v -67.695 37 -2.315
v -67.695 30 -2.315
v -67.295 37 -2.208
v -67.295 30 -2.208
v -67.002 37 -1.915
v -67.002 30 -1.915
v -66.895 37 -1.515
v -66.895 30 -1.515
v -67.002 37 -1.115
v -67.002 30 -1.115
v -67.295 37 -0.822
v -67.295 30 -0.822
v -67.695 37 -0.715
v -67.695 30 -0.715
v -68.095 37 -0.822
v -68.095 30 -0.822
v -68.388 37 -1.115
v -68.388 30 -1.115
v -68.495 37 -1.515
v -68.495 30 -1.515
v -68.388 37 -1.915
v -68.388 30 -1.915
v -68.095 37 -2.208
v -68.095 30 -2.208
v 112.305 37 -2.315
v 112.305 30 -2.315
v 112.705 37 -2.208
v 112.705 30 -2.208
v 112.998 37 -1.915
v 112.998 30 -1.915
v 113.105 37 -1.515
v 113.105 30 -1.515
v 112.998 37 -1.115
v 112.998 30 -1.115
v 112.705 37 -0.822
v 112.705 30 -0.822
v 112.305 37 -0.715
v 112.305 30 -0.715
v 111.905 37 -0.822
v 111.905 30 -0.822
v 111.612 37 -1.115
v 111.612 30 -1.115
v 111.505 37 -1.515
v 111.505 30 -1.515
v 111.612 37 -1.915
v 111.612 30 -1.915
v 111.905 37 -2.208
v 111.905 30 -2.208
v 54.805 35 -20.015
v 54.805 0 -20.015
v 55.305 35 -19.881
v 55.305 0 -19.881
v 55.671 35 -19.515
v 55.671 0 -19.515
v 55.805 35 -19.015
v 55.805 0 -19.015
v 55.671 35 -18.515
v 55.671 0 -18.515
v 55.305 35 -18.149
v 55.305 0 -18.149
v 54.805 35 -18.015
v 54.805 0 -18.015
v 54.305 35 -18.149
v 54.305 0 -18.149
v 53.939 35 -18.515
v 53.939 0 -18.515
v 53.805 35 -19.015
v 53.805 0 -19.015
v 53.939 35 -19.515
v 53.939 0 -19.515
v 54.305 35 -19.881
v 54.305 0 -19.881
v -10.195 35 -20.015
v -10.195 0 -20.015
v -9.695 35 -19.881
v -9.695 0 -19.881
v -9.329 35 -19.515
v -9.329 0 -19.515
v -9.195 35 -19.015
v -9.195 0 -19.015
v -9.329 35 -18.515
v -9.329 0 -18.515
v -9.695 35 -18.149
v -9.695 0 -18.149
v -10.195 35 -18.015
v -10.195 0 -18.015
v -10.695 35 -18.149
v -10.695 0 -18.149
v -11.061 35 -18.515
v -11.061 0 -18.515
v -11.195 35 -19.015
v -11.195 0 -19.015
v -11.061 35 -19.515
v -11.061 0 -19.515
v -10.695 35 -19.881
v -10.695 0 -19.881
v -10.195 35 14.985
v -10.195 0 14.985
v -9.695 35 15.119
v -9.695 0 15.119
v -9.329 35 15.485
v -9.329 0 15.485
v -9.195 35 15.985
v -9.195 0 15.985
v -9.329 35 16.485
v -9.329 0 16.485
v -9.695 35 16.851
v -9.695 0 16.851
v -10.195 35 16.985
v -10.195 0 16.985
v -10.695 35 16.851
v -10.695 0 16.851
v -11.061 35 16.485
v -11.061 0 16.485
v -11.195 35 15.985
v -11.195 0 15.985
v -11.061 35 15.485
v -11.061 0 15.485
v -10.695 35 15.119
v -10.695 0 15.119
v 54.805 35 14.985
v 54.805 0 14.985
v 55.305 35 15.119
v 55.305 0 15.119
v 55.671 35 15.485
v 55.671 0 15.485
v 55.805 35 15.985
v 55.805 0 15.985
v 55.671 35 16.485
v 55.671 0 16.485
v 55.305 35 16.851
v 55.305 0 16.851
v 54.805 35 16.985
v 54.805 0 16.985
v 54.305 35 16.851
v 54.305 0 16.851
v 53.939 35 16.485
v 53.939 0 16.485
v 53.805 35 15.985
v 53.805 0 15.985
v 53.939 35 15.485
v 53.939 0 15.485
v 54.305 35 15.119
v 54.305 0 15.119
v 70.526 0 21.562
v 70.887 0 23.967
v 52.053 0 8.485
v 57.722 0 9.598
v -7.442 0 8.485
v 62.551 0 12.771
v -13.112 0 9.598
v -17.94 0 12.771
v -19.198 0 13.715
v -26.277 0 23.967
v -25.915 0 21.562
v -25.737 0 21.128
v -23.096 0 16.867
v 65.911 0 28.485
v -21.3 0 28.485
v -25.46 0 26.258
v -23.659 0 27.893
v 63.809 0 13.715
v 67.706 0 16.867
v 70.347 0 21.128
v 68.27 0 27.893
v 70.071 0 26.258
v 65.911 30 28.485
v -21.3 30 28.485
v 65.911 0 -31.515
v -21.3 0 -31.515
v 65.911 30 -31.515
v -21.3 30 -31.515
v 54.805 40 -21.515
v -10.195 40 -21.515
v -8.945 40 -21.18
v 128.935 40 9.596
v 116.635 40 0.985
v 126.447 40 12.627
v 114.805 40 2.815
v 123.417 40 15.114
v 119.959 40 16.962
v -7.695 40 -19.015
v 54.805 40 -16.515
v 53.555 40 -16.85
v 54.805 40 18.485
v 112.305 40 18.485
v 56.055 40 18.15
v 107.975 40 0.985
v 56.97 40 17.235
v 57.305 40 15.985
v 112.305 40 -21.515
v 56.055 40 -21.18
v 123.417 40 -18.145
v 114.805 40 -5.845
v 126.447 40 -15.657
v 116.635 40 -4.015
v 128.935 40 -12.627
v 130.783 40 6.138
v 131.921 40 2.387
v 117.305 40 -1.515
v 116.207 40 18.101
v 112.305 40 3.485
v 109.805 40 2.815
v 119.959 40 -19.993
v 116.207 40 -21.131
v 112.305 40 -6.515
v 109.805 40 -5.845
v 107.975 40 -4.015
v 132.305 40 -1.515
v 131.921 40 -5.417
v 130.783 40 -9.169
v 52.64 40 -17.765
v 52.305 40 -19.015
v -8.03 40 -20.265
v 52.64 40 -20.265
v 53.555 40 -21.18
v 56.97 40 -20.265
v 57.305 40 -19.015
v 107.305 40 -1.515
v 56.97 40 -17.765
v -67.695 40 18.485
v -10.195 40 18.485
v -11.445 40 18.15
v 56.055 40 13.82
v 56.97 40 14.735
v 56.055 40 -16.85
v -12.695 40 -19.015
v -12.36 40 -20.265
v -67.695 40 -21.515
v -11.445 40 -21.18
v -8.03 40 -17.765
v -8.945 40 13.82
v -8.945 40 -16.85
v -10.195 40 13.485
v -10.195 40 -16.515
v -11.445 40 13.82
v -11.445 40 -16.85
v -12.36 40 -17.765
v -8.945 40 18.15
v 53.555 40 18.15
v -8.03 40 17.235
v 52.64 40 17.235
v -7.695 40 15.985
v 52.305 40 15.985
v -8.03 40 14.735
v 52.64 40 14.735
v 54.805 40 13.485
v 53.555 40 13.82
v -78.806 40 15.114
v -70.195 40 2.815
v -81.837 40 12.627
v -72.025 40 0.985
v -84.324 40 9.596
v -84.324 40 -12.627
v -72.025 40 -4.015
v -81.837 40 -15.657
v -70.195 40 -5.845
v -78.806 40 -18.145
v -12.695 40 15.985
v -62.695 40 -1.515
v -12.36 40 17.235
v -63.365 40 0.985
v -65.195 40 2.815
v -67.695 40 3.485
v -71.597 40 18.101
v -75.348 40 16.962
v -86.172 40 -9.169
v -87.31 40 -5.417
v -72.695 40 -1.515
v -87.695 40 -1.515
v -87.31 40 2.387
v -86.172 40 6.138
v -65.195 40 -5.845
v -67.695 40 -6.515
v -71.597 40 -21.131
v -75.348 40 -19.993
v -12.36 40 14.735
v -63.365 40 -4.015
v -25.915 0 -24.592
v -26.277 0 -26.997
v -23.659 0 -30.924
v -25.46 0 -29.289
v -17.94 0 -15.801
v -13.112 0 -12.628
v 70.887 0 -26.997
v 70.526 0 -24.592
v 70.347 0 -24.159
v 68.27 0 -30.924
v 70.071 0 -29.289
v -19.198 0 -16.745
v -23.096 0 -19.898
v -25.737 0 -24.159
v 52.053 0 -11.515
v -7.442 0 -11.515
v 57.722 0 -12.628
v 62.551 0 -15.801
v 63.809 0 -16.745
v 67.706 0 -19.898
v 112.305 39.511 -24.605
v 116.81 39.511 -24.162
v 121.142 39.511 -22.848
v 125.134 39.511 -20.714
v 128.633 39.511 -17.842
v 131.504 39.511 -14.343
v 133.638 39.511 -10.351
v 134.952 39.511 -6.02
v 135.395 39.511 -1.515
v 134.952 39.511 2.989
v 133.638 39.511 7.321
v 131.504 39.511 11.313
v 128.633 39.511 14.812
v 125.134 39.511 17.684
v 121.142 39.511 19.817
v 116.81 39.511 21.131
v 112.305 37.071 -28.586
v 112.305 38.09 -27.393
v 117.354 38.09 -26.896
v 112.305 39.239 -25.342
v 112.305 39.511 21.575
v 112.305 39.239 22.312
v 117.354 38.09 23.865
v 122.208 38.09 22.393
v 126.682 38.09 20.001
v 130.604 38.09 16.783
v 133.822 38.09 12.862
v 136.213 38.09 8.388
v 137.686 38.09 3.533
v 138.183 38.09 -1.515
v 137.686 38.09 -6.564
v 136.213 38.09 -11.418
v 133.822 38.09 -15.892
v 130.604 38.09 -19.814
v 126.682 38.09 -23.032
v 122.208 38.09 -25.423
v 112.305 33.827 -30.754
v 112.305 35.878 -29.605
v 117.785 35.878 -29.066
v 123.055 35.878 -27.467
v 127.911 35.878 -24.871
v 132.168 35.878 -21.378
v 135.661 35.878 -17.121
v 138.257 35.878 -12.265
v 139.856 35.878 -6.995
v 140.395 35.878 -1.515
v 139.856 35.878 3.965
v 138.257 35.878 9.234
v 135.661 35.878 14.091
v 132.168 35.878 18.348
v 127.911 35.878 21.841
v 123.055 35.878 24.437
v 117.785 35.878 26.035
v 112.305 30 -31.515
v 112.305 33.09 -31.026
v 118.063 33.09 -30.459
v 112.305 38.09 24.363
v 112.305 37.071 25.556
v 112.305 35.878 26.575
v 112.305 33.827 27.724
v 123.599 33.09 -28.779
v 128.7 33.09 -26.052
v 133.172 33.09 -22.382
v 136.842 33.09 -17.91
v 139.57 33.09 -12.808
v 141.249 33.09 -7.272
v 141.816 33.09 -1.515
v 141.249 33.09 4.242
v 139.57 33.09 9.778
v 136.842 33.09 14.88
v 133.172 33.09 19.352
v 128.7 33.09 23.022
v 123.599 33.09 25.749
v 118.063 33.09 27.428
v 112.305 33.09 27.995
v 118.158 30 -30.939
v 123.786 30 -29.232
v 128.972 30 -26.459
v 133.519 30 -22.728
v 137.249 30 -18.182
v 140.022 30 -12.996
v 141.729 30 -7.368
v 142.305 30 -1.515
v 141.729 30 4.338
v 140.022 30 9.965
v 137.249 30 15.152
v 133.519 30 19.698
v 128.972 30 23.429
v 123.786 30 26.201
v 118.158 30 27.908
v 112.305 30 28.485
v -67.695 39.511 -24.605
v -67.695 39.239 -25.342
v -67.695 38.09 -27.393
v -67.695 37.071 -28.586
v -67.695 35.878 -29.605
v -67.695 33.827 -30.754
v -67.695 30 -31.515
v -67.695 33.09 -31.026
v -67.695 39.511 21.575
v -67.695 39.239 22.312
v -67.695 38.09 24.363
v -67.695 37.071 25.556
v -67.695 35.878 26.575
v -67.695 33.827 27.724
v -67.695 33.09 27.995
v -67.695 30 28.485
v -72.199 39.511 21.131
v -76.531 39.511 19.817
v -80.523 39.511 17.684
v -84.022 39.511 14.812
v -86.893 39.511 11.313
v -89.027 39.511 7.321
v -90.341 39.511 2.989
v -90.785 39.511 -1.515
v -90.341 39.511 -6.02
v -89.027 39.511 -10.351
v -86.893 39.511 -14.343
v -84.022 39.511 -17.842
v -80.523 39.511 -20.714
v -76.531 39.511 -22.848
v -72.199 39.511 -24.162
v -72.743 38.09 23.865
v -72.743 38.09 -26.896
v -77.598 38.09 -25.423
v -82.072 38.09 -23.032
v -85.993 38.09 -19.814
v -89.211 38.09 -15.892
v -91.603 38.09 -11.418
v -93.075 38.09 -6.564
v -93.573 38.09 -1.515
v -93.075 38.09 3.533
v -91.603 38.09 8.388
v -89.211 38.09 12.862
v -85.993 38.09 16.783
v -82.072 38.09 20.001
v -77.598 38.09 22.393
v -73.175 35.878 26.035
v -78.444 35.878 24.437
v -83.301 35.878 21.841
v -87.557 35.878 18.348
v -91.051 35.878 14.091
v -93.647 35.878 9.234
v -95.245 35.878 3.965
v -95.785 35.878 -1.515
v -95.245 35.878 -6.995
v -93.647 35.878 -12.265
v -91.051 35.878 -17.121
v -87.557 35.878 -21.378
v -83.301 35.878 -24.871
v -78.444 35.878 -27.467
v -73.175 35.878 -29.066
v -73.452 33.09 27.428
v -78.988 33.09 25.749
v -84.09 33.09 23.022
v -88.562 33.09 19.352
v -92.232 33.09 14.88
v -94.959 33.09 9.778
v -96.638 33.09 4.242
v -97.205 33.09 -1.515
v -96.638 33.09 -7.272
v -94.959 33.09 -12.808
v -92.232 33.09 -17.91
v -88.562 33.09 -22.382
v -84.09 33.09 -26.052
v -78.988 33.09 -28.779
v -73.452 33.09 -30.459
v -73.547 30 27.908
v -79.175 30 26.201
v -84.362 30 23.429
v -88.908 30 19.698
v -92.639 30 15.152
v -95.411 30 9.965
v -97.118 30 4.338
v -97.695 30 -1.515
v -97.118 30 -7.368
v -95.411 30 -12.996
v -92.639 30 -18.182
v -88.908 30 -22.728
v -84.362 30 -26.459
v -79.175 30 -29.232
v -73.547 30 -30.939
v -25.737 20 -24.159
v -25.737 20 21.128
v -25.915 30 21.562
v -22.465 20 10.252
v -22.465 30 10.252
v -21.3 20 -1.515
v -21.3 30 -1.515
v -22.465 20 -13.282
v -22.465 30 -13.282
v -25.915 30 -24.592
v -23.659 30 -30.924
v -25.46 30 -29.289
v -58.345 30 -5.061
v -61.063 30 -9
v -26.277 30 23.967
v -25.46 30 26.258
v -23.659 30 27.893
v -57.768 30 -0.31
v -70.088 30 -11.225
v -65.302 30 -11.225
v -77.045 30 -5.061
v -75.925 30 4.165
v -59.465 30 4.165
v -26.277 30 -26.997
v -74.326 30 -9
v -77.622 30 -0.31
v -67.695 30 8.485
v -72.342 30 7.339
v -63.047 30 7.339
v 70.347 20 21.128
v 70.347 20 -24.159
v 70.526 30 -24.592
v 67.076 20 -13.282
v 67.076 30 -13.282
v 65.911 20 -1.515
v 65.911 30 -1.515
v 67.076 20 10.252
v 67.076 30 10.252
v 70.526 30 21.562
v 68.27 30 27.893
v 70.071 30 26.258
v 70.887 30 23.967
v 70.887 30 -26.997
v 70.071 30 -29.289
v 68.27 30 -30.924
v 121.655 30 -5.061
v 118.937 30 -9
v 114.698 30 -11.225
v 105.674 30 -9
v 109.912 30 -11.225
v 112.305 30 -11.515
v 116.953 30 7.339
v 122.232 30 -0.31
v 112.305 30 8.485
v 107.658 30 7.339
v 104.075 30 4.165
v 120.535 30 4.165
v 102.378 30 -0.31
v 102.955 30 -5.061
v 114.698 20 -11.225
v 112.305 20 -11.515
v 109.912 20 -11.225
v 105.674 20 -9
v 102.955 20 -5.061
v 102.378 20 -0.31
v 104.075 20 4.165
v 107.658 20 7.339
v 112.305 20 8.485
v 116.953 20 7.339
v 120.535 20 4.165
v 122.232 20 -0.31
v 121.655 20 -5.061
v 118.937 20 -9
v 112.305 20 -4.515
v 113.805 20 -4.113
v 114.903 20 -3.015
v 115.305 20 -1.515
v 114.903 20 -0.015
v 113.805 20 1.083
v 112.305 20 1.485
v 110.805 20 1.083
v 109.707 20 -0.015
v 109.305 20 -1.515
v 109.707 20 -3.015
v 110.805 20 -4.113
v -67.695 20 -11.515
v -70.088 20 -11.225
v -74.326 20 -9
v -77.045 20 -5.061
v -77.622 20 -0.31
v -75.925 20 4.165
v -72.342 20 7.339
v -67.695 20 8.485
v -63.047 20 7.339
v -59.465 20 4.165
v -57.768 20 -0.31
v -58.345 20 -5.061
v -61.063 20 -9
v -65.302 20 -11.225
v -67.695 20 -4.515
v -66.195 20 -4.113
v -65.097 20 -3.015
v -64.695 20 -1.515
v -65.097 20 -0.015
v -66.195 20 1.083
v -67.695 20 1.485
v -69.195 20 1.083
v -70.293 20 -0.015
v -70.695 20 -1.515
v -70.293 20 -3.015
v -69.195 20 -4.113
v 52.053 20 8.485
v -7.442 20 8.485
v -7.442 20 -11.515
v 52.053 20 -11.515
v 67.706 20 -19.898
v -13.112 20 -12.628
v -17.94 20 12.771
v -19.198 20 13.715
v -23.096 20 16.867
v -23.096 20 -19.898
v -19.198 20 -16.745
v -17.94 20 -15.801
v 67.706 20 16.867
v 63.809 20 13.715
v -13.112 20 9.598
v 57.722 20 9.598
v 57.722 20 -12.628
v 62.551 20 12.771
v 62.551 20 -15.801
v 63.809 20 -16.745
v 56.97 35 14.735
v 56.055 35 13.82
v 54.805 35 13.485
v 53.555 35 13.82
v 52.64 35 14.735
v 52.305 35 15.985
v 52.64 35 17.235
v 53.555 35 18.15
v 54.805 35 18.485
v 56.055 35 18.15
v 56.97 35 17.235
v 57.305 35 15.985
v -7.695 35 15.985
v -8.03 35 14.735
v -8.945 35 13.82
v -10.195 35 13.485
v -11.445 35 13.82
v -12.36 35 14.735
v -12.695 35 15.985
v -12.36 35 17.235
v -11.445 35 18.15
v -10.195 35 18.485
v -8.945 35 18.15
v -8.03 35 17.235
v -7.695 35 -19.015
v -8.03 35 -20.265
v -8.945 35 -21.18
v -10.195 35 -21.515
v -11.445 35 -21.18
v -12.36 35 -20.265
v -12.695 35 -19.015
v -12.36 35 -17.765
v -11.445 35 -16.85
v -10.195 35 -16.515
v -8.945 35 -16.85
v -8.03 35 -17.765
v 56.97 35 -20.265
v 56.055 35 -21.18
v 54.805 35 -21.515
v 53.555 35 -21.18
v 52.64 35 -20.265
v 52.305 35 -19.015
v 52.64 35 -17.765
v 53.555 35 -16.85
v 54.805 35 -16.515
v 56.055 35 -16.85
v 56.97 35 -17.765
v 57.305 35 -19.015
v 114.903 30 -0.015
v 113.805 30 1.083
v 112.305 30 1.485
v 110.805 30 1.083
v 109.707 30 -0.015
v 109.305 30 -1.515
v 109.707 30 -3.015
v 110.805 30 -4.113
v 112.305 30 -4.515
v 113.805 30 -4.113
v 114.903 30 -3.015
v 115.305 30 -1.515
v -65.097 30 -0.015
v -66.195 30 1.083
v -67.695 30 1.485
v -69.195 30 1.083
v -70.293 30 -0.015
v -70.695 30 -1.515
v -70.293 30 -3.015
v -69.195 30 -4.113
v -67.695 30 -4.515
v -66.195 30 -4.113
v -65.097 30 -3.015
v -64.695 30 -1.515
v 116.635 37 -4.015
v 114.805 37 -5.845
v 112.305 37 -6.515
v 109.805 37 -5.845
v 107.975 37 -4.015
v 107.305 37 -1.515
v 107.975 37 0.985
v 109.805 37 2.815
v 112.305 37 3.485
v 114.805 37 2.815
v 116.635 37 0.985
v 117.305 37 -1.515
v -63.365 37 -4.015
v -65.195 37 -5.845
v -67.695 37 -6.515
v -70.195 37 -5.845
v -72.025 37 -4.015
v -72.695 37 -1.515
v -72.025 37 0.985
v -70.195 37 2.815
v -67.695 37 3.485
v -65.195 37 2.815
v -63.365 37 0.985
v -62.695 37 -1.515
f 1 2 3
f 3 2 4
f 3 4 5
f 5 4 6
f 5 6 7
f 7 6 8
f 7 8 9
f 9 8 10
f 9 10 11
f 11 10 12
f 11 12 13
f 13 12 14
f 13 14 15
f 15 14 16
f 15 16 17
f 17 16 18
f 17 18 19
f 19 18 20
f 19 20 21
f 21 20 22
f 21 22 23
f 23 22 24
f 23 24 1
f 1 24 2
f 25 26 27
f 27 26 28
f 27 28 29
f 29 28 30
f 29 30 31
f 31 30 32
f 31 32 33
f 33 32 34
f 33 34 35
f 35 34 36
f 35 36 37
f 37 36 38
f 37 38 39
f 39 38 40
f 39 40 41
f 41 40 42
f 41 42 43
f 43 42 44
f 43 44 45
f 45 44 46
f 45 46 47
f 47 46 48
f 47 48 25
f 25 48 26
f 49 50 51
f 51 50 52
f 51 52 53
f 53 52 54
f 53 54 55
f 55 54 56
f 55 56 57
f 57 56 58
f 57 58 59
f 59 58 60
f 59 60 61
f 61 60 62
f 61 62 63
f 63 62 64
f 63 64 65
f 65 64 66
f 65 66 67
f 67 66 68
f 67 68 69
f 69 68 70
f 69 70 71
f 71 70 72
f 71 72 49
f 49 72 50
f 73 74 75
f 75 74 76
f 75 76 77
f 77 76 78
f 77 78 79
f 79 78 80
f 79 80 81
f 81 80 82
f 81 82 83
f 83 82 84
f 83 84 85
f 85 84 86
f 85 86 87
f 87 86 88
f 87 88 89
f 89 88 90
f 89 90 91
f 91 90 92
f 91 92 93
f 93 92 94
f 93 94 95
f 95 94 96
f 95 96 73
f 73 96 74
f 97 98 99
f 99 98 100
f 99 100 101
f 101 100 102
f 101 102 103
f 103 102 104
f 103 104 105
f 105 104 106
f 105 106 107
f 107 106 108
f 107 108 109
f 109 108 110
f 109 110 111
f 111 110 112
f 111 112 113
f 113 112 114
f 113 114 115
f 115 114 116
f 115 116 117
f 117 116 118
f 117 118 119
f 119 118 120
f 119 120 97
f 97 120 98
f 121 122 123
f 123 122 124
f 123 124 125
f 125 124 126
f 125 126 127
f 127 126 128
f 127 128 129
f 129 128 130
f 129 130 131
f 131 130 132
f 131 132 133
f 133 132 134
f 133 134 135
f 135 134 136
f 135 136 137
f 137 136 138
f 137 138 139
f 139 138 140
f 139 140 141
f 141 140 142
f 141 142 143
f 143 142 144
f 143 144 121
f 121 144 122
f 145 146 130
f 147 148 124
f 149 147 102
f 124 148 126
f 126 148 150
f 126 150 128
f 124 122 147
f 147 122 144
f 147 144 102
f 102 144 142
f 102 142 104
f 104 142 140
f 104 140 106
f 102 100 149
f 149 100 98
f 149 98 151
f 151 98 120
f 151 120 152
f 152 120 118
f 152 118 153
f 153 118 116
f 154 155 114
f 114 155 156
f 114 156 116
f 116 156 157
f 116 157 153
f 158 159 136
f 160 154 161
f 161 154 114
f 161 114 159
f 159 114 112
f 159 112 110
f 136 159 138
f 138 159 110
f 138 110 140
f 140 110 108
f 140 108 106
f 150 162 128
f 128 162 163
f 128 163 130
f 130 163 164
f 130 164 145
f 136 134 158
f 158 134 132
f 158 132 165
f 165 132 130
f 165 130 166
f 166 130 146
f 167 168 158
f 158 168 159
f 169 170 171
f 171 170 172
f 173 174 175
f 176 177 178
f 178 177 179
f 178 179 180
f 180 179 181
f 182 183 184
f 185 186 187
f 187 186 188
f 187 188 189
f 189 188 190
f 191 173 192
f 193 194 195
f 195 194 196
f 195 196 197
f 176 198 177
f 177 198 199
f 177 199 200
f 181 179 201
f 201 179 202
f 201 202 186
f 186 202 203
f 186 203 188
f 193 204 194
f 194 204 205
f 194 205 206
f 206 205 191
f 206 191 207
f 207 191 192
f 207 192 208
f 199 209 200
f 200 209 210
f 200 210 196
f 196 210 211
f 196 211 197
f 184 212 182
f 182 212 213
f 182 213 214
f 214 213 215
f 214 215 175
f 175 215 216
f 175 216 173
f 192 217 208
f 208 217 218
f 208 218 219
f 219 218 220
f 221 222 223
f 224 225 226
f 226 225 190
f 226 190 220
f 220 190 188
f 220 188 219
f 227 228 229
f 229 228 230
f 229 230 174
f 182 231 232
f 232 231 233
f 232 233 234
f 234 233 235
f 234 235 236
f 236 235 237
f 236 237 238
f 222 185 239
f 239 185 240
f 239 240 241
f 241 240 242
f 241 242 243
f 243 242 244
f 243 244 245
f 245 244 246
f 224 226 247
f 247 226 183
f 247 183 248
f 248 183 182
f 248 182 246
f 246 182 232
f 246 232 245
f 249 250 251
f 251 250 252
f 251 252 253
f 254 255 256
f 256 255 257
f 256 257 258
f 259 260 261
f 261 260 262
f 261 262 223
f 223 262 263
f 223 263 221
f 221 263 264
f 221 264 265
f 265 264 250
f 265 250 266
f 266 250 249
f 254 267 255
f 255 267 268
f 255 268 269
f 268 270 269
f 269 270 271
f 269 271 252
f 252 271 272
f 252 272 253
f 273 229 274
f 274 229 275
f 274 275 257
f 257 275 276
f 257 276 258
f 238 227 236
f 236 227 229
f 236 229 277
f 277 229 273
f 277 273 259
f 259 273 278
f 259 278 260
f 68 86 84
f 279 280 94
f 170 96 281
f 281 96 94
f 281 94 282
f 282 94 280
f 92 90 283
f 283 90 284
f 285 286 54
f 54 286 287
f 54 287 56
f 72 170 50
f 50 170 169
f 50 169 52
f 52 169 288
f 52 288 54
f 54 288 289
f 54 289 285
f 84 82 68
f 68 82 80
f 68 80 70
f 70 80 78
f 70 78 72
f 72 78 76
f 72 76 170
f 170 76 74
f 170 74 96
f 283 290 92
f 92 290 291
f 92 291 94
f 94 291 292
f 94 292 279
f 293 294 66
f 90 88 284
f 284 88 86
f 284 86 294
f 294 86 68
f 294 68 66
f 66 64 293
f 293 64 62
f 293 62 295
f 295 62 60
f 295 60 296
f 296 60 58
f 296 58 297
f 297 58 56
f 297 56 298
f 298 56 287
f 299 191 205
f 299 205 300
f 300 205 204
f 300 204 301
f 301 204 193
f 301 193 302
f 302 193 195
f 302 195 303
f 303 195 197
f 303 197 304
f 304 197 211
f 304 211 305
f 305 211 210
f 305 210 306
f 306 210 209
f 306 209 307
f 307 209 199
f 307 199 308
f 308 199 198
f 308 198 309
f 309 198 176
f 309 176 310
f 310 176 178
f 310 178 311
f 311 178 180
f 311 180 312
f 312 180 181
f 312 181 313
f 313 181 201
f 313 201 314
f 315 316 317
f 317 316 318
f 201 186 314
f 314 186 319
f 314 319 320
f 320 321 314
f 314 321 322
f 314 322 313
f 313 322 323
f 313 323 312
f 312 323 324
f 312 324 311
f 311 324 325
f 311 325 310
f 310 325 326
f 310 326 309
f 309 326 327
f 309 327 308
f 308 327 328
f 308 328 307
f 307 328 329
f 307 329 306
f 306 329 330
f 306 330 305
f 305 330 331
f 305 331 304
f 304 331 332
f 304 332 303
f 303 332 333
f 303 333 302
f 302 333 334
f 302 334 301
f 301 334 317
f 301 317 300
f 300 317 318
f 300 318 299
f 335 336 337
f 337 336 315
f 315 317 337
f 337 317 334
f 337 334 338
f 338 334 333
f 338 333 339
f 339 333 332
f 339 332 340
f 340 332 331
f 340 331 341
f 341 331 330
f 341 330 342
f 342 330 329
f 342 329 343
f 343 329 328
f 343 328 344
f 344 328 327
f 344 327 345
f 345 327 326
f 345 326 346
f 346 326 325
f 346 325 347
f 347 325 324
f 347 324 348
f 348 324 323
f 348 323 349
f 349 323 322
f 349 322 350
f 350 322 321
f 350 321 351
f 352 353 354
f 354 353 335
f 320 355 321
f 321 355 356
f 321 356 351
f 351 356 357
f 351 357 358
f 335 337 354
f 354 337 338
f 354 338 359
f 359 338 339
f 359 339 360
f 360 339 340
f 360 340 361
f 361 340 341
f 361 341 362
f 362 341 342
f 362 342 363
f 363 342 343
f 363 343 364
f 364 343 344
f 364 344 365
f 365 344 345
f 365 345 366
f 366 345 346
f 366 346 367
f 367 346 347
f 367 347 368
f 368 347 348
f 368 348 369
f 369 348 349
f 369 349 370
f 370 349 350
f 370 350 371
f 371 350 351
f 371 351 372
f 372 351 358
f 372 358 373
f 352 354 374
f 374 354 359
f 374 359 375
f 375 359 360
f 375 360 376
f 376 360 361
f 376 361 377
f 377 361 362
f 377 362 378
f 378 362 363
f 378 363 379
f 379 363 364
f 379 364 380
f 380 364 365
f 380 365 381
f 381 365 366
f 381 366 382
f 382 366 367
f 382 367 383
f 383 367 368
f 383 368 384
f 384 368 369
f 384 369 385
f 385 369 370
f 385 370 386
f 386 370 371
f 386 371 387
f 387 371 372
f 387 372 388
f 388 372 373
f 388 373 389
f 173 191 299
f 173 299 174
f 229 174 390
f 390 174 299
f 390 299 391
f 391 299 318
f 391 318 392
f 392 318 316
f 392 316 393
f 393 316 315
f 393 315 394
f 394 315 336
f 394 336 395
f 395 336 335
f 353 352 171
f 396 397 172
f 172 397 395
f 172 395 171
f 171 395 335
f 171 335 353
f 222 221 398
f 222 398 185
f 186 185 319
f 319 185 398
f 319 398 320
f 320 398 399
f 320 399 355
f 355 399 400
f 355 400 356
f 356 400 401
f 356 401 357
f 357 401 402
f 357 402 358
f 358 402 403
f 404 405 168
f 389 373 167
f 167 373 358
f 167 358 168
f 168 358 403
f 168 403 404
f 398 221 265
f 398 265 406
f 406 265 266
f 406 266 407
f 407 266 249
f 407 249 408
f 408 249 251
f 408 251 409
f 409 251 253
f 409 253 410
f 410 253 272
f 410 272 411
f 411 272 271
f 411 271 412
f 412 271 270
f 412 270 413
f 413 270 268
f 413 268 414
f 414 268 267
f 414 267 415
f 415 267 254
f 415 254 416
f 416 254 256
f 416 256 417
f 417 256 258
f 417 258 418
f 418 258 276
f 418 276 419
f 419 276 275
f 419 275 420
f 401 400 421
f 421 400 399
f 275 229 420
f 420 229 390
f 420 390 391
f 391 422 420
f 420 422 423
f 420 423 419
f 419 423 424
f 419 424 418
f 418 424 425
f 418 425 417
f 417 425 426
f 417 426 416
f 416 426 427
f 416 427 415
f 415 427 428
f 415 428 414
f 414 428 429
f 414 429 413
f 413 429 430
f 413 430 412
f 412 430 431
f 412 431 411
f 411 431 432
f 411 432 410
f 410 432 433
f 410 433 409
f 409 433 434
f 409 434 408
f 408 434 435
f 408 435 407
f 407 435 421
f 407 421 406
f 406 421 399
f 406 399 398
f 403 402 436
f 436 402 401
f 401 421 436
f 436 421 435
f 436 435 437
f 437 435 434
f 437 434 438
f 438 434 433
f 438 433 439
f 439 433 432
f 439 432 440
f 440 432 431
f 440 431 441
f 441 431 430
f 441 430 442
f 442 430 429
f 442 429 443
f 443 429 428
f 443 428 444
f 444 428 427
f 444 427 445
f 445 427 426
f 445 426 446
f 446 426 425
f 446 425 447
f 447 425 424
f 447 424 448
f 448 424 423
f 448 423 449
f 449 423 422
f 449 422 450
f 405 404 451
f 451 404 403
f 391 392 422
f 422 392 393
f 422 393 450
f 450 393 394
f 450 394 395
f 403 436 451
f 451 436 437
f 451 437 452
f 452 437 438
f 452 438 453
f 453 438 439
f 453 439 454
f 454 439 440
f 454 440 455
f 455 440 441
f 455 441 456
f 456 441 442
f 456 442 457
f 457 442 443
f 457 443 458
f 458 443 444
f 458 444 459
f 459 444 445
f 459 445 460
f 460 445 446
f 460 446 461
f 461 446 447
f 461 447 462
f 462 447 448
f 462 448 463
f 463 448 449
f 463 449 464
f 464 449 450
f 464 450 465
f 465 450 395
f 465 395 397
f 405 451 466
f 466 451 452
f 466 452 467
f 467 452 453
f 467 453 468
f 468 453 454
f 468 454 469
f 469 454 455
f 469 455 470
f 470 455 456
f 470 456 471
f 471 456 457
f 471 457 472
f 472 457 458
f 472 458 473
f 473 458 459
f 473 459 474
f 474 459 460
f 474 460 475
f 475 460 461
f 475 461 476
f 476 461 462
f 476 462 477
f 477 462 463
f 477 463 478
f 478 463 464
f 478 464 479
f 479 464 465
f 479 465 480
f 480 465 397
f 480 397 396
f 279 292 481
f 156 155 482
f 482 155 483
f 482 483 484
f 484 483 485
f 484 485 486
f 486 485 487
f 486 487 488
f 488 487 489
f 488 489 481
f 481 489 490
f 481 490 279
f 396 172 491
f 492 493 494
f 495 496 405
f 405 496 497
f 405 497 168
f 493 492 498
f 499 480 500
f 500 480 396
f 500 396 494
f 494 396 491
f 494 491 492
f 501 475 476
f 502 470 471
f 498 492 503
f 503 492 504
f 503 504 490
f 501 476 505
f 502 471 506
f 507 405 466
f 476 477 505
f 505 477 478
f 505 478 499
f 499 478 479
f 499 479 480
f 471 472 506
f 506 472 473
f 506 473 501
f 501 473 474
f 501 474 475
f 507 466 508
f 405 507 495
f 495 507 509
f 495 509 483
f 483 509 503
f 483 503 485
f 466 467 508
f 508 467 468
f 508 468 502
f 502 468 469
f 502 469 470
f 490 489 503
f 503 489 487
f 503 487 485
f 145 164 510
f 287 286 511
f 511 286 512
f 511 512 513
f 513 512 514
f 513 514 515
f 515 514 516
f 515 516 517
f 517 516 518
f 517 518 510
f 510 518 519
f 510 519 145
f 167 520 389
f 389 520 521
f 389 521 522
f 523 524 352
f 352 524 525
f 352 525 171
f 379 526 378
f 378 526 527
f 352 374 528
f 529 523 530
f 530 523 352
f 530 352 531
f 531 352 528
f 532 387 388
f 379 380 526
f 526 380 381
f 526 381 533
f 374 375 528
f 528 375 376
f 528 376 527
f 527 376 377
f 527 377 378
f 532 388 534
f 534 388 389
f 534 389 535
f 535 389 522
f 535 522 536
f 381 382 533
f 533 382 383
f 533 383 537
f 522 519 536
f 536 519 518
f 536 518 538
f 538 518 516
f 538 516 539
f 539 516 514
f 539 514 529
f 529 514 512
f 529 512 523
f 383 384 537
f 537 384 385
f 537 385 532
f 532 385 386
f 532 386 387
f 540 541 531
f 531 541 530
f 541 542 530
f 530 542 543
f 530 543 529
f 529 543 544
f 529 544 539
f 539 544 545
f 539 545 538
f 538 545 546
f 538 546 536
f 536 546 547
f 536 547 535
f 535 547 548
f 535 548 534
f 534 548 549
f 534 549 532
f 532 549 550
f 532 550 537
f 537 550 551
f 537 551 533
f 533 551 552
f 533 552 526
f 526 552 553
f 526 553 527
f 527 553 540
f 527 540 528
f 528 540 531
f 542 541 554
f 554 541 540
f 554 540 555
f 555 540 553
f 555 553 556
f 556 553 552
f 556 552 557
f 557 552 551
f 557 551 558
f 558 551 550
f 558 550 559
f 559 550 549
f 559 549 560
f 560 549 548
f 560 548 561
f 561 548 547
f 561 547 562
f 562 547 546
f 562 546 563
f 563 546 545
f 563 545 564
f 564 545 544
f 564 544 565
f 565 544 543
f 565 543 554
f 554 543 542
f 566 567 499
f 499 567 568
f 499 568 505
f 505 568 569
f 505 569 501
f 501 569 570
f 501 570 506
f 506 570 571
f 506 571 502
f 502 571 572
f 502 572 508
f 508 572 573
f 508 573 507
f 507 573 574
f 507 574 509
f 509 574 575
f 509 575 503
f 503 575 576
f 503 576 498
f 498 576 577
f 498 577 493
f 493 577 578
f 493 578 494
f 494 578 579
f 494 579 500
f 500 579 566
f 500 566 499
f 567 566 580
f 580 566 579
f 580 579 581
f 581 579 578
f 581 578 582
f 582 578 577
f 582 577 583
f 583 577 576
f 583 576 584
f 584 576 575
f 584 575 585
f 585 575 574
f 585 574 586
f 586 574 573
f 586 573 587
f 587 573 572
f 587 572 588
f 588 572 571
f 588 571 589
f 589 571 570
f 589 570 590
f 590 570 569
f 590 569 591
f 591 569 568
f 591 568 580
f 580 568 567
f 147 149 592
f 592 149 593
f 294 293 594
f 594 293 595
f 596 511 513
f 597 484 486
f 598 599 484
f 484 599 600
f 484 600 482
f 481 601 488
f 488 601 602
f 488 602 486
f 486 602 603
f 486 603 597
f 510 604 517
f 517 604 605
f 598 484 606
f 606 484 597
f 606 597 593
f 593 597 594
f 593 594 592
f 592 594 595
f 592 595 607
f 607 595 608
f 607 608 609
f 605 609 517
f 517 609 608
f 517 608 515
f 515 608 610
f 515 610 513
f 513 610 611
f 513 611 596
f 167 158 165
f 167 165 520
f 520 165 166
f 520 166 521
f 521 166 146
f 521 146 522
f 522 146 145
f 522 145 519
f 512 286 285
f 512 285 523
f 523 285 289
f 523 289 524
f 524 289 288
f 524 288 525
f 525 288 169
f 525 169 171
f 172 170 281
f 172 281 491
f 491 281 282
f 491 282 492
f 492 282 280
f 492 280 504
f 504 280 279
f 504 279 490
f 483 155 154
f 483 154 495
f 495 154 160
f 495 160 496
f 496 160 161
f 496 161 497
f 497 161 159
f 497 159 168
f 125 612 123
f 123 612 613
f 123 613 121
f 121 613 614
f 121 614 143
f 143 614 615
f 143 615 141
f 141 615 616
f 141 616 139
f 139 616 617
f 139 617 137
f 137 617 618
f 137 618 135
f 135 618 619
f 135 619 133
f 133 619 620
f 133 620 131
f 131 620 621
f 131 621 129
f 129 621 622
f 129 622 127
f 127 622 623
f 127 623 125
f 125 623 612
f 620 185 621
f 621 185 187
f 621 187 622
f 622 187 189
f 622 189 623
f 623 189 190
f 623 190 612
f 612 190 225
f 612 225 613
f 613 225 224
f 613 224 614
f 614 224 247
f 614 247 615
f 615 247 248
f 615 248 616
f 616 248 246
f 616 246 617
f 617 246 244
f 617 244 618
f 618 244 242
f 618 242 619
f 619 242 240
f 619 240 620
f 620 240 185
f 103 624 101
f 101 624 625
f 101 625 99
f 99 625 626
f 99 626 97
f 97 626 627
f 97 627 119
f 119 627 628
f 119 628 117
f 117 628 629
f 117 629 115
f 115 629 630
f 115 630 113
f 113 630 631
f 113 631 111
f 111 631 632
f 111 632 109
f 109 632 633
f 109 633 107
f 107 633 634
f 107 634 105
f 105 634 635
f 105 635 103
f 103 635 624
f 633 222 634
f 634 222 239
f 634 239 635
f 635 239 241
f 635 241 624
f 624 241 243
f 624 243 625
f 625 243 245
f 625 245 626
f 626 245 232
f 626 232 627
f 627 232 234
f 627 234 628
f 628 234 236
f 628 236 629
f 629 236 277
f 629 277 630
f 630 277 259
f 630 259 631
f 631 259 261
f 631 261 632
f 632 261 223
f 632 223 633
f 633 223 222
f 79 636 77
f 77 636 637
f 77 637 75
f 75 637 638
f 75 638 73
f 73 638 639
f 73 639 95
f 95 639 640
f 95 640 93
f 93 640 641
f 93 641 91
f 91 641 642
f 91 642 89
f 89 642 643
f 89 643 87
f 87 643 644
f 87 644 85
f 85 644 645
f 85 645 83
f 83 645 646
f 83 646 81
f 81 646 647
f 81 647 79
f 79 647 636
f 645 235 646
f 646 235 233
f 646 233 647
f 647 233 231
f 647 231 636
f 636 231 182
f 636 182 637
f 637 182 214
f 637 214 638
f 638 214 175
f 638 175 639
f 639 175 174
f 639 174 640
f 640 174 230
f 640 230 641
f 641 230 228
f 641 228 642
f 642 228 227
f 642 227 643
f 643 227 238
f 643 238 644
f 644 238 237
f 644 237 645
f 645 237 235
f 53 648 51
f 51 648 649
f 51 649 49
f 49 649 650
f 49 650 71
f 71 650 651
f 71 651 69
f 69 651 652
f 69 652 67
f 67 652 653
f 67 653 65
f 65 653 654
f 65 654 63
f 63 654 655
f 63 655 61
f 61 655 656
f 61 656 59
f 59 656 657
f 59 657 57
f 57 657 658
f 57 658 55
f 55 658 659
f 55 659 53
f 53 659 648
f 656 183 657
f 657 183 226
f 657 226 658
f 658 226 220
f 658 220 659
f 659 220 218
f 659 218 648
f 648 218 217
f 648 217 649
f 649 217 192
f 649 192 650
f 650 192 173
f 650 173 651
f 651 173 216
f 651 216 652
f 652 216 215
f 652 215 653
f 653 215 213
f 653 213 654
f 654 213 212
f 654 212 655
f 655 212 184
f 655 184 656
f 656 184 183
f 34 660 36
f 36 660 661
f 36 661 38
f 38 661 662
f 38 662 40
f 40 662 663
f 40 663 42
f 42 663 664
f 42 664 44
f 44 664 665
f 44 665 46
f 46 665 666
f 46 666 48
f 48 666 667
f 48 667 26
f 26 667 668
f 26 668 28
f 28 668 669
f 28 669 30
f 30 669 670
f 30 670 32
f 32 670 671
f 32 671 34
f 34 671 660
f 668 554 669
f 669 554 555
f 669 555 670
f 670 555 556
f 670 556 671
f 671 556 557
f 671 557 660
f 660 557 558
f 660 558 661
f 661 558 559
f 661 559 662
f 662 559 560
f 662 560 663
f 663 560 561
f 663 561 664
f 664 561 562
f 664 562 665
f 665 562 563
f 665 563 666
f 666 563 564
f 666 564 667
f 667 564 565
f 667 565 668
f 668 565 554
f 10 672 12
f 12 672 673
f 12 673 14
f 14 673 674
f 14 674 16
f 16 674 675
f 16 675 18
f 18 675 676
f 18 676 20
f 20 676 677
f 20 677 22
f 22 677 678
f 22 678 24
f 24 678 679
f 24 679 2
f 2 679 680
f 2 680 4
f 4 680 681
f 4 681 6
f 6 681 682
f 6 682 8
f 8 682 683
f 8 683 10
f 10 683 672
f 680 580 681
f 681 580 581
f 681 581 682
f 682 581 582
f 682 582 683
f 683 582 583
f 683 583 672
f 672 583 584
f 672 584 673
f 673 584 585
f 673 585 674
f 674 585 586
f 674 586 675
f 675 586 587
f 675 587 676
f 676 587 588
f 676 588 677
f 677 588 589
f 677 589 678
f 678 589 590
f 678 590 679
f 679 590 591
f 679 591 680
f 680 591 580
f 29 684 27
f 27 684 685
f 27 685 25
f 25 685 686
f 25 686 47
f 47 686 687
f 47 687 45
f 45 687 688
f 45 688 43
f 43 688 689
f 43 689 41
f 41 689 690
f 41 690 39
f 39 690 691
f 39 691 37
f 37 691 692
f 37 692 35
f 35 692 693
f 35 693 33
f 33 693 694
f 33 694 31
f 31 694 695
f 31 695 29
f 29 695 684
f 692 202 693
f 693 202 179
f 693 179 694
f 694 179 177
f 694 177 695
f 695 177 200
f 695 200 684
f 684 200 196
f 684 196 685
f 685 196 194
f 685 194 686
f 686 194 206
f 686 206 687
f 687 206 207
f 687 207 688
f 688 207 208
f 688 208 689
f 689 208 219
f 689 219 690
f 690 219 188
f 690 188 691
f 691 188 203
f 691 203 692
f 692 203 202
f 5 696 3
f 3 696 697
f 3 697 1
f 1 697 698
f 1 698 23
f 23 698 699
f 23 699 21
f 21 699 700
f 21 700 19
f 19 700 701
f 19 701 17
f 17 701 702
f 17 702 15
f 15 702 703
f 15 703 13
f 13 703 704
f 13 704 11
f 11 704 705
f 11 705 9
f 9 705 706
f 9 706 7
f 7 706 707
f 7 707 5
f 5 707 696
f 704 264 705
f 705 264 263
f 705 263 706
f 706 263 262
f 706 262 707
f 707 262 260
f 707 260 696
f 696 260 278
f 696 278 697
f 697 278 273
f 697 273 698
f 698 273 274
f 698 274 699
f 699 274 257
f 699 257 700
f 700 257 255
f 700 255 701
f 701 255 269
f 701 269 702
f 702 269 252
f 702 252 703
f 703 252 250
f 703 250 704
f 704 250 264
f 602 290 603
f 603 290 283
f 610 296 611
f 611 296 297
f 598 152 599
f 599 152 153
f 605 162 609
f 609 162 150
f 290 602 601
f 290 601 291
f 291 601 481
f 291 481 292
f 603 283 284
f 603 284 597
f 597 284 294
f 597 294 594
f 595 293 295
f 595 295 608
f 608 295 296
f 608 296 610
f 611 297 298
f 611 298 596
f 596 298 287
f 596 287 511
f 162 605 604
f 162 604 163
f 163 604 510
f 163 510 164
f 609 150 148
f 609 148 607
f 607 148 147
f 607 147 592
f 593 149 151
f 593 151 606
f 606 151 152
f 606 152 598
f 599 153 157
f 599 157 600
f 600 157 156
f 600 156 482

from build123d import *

# Parameters (mm, degrees)
BOSS_EXTRUDE1_DEPTH     = 40
FILLET1_R               = 10
CUT_EXTRUDE1_DEPTH      = 30
SKETCH4_R               = 10
BOSS_EXTRUDE3_DEPTH     = 10
CUT_EXTRUDE2_REACH      = 181.038
CUT_EXTRUDE2_END_RADIUS = 60
SKETCH5_W               = 20
SKETCH5_H               = 40
FILLET2_R               = 5
CUT_EXTRUDE3_REACH      = 153.142
SKETCH6_R               = 1
SKETCH7_R               = 2.5
CUT_EXTRUDE4_DEPTH      = 5
CUT_EXTRUDE5_REACH      = 149.119
SKETCH8_R               = 0.8
SKETCH9_R               = 3
CUT_EXTRUDE6_DEPTH      = 10
SKETCH11_R              = 5
CUT_EXTRUDE7_DEPTH      = 3
SKETCH12_R              = 6
CUT_EXTRUDE8_DEPTH      = 20
FILLET3_R               = 15


with BuildPart() as part:
    # Sketch1 → Boss-Extrude1 (new body)
    with BuildSketch(Plane(origin=(0, 0, 0), x_dir=(1, 0, 0), z_dir=(0, 1, 0))):
        with BuildLine():
            Line((-67.694698117, 31.515169882), (112.305301883, 31.515169882))
            ThreePointArc((112.305301883, 31.515169882), (142.305301883, 1.515169882), (112.305301883, -28.484830118))
            Line((112.305301883, -28.484830118), (-67.694698117, -28.484830118))
            ThreePointArc((-67.694698117, -28.484830118), (-97.694698117, 1.515169882), (-67.694698117, 31.515169882))
        make_face()
    extrude(amount=BOSS_EXTRUDE1_DEPTH)

    # Fillet1
    fillet1_edges = [part.edges().sort_by_distance(p)[0] for p in [
        (142.305301883, 40, -1.515169882),
        (22.305301883, 40, -31.515169882),
        (-97.694698117, 40, -1.515169882),
        (22.305301883, 40, 28.484830118),
    ]]
    fillet(fillet1_edges, radius=FILLET1_R)

    # Sketch3 → Cut-Extrude1 (cut)
    with BuildSketch(Plane.XZ):
        with BuildLine():
            Line((73.949041486, -31.515169882), (148.949041486, -31.515169882))
            Line((148.949041486, -31.515169882), (148.949041486, 28.484830118))
            Line((148.949041486, 28.484830118), (73.949041486, 28.484830118))
            ThreePointArc((73.949041486, 28.484830118), (65.910565713, -1.515169882), (73.949041486, -31.515169882))
        make_face()
        with BuildLine():
            Line((-29.33843772, 28.484830118), (-104.33843772, 28.484830118))
            Line((-104.33843772, 28.484830118), (-104.33843772, -31.515169882))
            Line((-104.33843772, -31.515169882), (-29.33843772, -31.515169882))
            ThreePointArc((-29.33843772, -31.515169882), (-21.299961947, -1.515169882), (-29.33843772, 28.484830118))
        make_face()
    extrude(amount=-CUT_EXTRUDE1_DEPTH, mode=Mode.SUBTRACT)

    # Sketch4 → Boss-Extrude3 (add)
    with BuildSketch(Plane(origin=(0, 30, 0), x_dir=(-1, 0, 0), z_dir=(0, -1, 0))):
        with Locations(Location((-112.305301883, 1.515169882, 0), (0, 0, 90))):
            Circle(SKETCH4_R)
        with Locations(Location((67.694698117, 1.515169882, 0), (0, 0, 270))):
            Circle(SKETCH4_R)
    extrude(amount=BOSS_EXTRUDE3_DEPTH)

    # Cut-Extrude2: up to this cylinder (the profile starts outside it)
    cut_extrude2_end = Plane(origin=(-81.299961947, 0, -1.515169882), z_dir=(0, -1, 0)) * Cylinder(CUT_EXTRUDE2_END_RADIUS, 483.076, mode=Mode.PRIVATE)
    # Sketch5 → Cut-Extrude2 (cut, up to the surface)
    with BuildSketch(Plane(origin=(73.949041486, 0, 0), x_dir=(0, 0, -1), z_dir=(1, 0, 0)), mode=Mode.PRIVATE) as cut_extrude2_sk1:
        with Locations((1.515169882, 0)):
            Rectangle(SKETCH5_W, SKETCH5_H)
    cut_extrude2_tool1 = extrude(cut_extrude2_sk1.sketch, amount=-CUT_EXTRUDE2_REACH, mode=Mode.PRIVATE) - cut_extrude2_end
    add(cut_extrude2_tool1.solids().sort_by_distance((73.949041, 0, -1.51517))[0], mode=Mode.SUBTRACT)

    # Fillet2
    # the kernel refuses this fillet: 5 mm, written as the material it takes off along each edge
    with BuildSketch(Plane(origin=(-29.33843772, -20.096189432, 28.484830118), x_dir=(0.44322659401027775, 0, -0.8964096085841831), z_dir=(0, 1, 0))) as fillet2_piece_1:
        with BuildLine():
            CenterArc((8.044914281, -4.989633951), FILLET2_R, 93.690067526, 112.619864948)
            Line((3.562866238, -7.205766921), (0, 0))
            ThreePointArc((0, 0), (3.861558855, -0.124392586), (7.72311771, 0))
        make_face()
    extrude(amount=50.096189432, mode=Mode.SUBTRACT)
    with BuildSketch(Plane(origin=(-29.33843772, -20.096189432, -31.515169882), x_dir=(1, 0, 0), z_dir=(0, 1, 0))) as fillet2_piece_2:
        with BuildLine():
            CenterArc((8.038475773, -5), FILLET2_R, 90, 112.619864948)
            ThreePointArc((3.423091158, -6.923076923), (1.823052288, -3.406404359), (0, 0))
            Line((0, 0), (8.038475773, 0))
        make_face()
    extrude(amount=50.096189432, mode=Mode.SUBTRACT)
    with BuildSketch(Plane(origin=(73.949041486, -20.096189432, -31.515169882), x_dir=(-1, 0, 0), z_dir=(0, 1, 0))) as fillet2_piece_3:
        with BuildLine():
            CenterArc((8.038475773, 5), FILLET2_R, 157.380135052, 112.619864948)
            ThreePointArc((3.423091158, 6.923076923), (1.823052288, 3.406404359), (0, 0))
            Line((0, 0), (8.038475773, 0))
        make_face()
    extrude(amount=50.096189432, mode=Mode.SUBTRACT)
    with BuildSketch(Plane(origin=(73.949041486, -20.096189432, 28.484830118), x_dir=(-0.4432265940102763, 0, -0.8964096085841838), z_dir=(0, 1, 0))) as fillet2_piece_4:
        with BuildLine():
            CenterArc((8.044914281, 4.989633951), FILLET2_R, 153.690067526, 112.619864948)
            Line((3.562866238, 7.205766921), (0, 0))
            ThreePointArc((0, 0), (3.861558855, 0.124392586), (7.72311771, 0))
        make_face()
    extrude(amount=50.096189432, mode=Mode.SUBTRACT)

    # Sketch6 → Cut-Extrude3 (cut, up to next)
    with BuildSketch(Plane(origin=(0, 0, 0), x_dir=(-1, 0, 0), z_dir=(0, -1, 0)), mode=Mode.PRIVATE) as cut_extrude3_sk1:
        with Locations(Location((10.194698117, -15.984830118, 0), (0, 0, 90))):
            Circle(SKETCH6_R)
    cut_extrude3_tool1 = extrude(cut_extrude3_sk1.sketch, amount=-CUT_EXTRUDE3_REACH, mode=Mode.PRIVATE) & part.part
    # Sketch6 → Cut-Extrude3 (cut, up to next)
    with BuildSketch(Plane(origin=(0, 0, 0), x_dir=(-1, 0, 0), z_dir=(0, -1, 0)), mode=Mode.PRIVATE) as cut_extrude3_sk2:
        with Locations(Location((-54.805301883, -15.984830118, 0), (0, 0, 90))):
            Circle(SKETCH6_R)
    cut_extrude3_tool2 = extrude(cut_extrude3_sk2.sketch, amount=-CUT_EXTRUDE3_REACH, mode=Mode.PRIVATE) & part.part
    # Sketch6 → Cut-Extrude3 (cut, up to next)
    with BuildSketch(Plane(origin=(0, 0, 0), x_dir=(-1, 0, 0), z_dir=(0, -1, 0)), mode=Mode.PRIVATE) as cut_extrude3_sk3:
        with Locations(Location((-54.805301883, 19.015169882, 0), (0, 0, 90))):
            Circle(SKETCH6_R)
    cut_extrude3_tool3 = extrude(cut_extrude3_sk3.sketch, amount=-CUT_EXTRUDE3_REACH, mode=Mode.PRIVATE) & part.part
    # Sketch6 → Cut-Extrude3 (cut, up to next)
    with BuildSketch(Plane(origin=(0, 0, 0), x_dir=(-1, 0, 0), z_dir=(0, -1, 0)), mode=Mode.PRIVATE) as cut_extrude3_sk4:
        with Locations(Location((10.194698117, 19.015169882, 0), (0, 0, 90))):
            Circle(SKETCH6_R)
    cut_extrude3_tool4 = extrude(cut_extrude3_sk4.sketch, amount=-CUT_EXTRUDE3_REACH, mode=Mode.PRIVATE) & part.part
    add(cut_extrude3_tool1.solids().sort_by_distance((-10.194698, 0, 15.98483))[0], mode=Mode.SUBTRACT)
    add(cut_extrude3_tool2.solids().sort_by_distance((54.805302, 0, 15.98483))[0], mode=Mode.SUBTRACT)
    add(cut_extrude3_tool3.solids().sort_by_distance((54.805302, 0, -19.01517))[0], mode=Mode.SUBTRACT)
    add(cut_extrude3_tool4.solids().sort_by_distance((-10.194698, 0, -19.01517))[0], mode=Mode.SUBTRACT)

    # Sketch7 → Cut-Extrude4 (cut)
    with BuildSketch(Plane(origin=(0, 40, 0), x_dir=(1, 0, 0), z_dir=(0, 1, 0))):
        with Locations(Location((-10.194698117, 19.015169882, 0), (0, 0, 270))):
            Circle(SKETCH7_R)
        with Locations(Location((-10.194698117, -15.984830118, 0), (0, 0, 270))):
            Circle(SKETCH7_R)
        with Locations(Location((54.805301883, -15.984830118, 0), (0, 0, 270))):
            Circle(SKETCH7_R)
        with Locations(Location((54.805301883, 19.015169882, 0), (0, 0, 270))):
            Circle(SKETCH7_R)
    extrude(amount=-CUT_EXTRUDE4_DEPTH, mode=Mode.SUBTRACT)

    # Sketch8 → Cut-Extrude5 (cut, up to next)
    with BuildSketch(Plane(origin=(0, 20, 0), x_dir=(-1, 0, 0), z_dir=(0, -1, 0)), mode=Mode.PRIVATE) as cut_extrude5_sk1:
        with Locations(Location((67.694698117, 1.515169882, 0), (0, 0, 90))):
            Circle(SKETCH8_R)
    cut_extrude5_tool1 = extrude(cut_extrude5_sk1.sketch, amount=-CUT_EXTRUDE5_REACH, mode=Mode.PRIVATE) & part.part
    # Sketch8 → Cut-Extrude5 (cut, up to next)
    with BuildSketch(Plane(origin=(0, 20, 0), x_dir=(-1, 0, 0), z_dir=(0, -1, 0)), mode=Mode.PRIVATE) as cut_extrude5_sk2:
        with Locations(Location((-112.305301883, 1.515169882, 0), (0, 0, 90))):
            Circle(SKETCH8_R)
    cut_extrude5_tool2 = extrude(cut_extrude5_sk2.sketch, amount=-CUT_EXTRUDE5_REACH, mode=Mode.PRIVATE) & part.part
    add(cut_extrude5_tool1.solids().sort_by_distance((-67.694698, 20, -1.51517))[0], mode=Mode.SUBTRACT)
    add(cut_extrude5_tool2.solids().sort_by_distance((112.305302, 20, -1.51517))[0], mode=Mode.SUBTRACT)

    # Sketch9 → Cut-Extrude6 (cut)
    with BuildSketch(Plane(origin=(0, 20, 0), x_dir=(-1, 0, 0), z_dir=(0, -1, 0))):
        with Locations(Location((67.694698117, 1.515169882, 0), (0, 0, 90))):
            Circle(SKETCH9_R)
        with Locations(Location((-112.305301883, 1.515169882, 0), (0, 0, 90))):
            Circle(SKETCH9_R)
    extrude(amount=-CUT_EXTRUDE6_DEPTH, mode=Mode.SUBTRACT)

    # Sketch11 → Cut-Extrude7 (cut)
    with BuildSketch(Plane(origin=(0, 40, 0), x_dir=(1, 0, 0), z_dir=(0, 1, 0))):
        with Locations(Location((-67.694698117, 1.515169882, 0), (0, 0, 270))):
            Circle(SKETCH11_R)
        with Locations(Location((112.305301883, 1.515169882, 0), (0, 0, 270))):
            Circle(SKETCH11_R)
    extrude(amount=-CUT_EXTRUDE7_DEPTH, mode=Mode.SUBTRACT)

    # Sketch12 → Cut-Extrude8 (cut)
    with BuildSketch(Plane(origin=(0, 0, 0), x_dir=(-1, 0, 0), z_dir=(0, -1, 0))):
        with Locations((22.139164116, -8.484830118)):
            Circle(SKETCH12_R)
        with Locations((22.139164116, 11.515169882)):
            Circle(SKETCH12_R)
        with Locations((-66.749767882, 11.515169882)):
            Circle(SKETCH12_R)
        with Locations((-66.749767882, -8.484830118)):
            Circle(SKETCH12_R)
    extrude(amount=-CUT_EXTRUDE8_DEPTH, mode=Mode.SUBTRACT)

    # Fillet3
    fillet3_edges = [part.edges().sort_by_distance(p)[0] for p in [
        (68.044321089, 10, 14.343510174),
        (60.749767882, 10, 8.484830118),
        (68.044321089, 10, -17.373849938),
        (60.749767882, 10, -11.515169882),
        (-23.433717323, 10, -17.373849938),
        (-16.139164116, 10, -11.515169882),
        (-23.433717323, 10, 14.343510174),
        (-16.139164116, 10, 8.484830118),
    ]]
    fillet(fillet3_edges, radius=FILLET3_R)


solid = part.part
